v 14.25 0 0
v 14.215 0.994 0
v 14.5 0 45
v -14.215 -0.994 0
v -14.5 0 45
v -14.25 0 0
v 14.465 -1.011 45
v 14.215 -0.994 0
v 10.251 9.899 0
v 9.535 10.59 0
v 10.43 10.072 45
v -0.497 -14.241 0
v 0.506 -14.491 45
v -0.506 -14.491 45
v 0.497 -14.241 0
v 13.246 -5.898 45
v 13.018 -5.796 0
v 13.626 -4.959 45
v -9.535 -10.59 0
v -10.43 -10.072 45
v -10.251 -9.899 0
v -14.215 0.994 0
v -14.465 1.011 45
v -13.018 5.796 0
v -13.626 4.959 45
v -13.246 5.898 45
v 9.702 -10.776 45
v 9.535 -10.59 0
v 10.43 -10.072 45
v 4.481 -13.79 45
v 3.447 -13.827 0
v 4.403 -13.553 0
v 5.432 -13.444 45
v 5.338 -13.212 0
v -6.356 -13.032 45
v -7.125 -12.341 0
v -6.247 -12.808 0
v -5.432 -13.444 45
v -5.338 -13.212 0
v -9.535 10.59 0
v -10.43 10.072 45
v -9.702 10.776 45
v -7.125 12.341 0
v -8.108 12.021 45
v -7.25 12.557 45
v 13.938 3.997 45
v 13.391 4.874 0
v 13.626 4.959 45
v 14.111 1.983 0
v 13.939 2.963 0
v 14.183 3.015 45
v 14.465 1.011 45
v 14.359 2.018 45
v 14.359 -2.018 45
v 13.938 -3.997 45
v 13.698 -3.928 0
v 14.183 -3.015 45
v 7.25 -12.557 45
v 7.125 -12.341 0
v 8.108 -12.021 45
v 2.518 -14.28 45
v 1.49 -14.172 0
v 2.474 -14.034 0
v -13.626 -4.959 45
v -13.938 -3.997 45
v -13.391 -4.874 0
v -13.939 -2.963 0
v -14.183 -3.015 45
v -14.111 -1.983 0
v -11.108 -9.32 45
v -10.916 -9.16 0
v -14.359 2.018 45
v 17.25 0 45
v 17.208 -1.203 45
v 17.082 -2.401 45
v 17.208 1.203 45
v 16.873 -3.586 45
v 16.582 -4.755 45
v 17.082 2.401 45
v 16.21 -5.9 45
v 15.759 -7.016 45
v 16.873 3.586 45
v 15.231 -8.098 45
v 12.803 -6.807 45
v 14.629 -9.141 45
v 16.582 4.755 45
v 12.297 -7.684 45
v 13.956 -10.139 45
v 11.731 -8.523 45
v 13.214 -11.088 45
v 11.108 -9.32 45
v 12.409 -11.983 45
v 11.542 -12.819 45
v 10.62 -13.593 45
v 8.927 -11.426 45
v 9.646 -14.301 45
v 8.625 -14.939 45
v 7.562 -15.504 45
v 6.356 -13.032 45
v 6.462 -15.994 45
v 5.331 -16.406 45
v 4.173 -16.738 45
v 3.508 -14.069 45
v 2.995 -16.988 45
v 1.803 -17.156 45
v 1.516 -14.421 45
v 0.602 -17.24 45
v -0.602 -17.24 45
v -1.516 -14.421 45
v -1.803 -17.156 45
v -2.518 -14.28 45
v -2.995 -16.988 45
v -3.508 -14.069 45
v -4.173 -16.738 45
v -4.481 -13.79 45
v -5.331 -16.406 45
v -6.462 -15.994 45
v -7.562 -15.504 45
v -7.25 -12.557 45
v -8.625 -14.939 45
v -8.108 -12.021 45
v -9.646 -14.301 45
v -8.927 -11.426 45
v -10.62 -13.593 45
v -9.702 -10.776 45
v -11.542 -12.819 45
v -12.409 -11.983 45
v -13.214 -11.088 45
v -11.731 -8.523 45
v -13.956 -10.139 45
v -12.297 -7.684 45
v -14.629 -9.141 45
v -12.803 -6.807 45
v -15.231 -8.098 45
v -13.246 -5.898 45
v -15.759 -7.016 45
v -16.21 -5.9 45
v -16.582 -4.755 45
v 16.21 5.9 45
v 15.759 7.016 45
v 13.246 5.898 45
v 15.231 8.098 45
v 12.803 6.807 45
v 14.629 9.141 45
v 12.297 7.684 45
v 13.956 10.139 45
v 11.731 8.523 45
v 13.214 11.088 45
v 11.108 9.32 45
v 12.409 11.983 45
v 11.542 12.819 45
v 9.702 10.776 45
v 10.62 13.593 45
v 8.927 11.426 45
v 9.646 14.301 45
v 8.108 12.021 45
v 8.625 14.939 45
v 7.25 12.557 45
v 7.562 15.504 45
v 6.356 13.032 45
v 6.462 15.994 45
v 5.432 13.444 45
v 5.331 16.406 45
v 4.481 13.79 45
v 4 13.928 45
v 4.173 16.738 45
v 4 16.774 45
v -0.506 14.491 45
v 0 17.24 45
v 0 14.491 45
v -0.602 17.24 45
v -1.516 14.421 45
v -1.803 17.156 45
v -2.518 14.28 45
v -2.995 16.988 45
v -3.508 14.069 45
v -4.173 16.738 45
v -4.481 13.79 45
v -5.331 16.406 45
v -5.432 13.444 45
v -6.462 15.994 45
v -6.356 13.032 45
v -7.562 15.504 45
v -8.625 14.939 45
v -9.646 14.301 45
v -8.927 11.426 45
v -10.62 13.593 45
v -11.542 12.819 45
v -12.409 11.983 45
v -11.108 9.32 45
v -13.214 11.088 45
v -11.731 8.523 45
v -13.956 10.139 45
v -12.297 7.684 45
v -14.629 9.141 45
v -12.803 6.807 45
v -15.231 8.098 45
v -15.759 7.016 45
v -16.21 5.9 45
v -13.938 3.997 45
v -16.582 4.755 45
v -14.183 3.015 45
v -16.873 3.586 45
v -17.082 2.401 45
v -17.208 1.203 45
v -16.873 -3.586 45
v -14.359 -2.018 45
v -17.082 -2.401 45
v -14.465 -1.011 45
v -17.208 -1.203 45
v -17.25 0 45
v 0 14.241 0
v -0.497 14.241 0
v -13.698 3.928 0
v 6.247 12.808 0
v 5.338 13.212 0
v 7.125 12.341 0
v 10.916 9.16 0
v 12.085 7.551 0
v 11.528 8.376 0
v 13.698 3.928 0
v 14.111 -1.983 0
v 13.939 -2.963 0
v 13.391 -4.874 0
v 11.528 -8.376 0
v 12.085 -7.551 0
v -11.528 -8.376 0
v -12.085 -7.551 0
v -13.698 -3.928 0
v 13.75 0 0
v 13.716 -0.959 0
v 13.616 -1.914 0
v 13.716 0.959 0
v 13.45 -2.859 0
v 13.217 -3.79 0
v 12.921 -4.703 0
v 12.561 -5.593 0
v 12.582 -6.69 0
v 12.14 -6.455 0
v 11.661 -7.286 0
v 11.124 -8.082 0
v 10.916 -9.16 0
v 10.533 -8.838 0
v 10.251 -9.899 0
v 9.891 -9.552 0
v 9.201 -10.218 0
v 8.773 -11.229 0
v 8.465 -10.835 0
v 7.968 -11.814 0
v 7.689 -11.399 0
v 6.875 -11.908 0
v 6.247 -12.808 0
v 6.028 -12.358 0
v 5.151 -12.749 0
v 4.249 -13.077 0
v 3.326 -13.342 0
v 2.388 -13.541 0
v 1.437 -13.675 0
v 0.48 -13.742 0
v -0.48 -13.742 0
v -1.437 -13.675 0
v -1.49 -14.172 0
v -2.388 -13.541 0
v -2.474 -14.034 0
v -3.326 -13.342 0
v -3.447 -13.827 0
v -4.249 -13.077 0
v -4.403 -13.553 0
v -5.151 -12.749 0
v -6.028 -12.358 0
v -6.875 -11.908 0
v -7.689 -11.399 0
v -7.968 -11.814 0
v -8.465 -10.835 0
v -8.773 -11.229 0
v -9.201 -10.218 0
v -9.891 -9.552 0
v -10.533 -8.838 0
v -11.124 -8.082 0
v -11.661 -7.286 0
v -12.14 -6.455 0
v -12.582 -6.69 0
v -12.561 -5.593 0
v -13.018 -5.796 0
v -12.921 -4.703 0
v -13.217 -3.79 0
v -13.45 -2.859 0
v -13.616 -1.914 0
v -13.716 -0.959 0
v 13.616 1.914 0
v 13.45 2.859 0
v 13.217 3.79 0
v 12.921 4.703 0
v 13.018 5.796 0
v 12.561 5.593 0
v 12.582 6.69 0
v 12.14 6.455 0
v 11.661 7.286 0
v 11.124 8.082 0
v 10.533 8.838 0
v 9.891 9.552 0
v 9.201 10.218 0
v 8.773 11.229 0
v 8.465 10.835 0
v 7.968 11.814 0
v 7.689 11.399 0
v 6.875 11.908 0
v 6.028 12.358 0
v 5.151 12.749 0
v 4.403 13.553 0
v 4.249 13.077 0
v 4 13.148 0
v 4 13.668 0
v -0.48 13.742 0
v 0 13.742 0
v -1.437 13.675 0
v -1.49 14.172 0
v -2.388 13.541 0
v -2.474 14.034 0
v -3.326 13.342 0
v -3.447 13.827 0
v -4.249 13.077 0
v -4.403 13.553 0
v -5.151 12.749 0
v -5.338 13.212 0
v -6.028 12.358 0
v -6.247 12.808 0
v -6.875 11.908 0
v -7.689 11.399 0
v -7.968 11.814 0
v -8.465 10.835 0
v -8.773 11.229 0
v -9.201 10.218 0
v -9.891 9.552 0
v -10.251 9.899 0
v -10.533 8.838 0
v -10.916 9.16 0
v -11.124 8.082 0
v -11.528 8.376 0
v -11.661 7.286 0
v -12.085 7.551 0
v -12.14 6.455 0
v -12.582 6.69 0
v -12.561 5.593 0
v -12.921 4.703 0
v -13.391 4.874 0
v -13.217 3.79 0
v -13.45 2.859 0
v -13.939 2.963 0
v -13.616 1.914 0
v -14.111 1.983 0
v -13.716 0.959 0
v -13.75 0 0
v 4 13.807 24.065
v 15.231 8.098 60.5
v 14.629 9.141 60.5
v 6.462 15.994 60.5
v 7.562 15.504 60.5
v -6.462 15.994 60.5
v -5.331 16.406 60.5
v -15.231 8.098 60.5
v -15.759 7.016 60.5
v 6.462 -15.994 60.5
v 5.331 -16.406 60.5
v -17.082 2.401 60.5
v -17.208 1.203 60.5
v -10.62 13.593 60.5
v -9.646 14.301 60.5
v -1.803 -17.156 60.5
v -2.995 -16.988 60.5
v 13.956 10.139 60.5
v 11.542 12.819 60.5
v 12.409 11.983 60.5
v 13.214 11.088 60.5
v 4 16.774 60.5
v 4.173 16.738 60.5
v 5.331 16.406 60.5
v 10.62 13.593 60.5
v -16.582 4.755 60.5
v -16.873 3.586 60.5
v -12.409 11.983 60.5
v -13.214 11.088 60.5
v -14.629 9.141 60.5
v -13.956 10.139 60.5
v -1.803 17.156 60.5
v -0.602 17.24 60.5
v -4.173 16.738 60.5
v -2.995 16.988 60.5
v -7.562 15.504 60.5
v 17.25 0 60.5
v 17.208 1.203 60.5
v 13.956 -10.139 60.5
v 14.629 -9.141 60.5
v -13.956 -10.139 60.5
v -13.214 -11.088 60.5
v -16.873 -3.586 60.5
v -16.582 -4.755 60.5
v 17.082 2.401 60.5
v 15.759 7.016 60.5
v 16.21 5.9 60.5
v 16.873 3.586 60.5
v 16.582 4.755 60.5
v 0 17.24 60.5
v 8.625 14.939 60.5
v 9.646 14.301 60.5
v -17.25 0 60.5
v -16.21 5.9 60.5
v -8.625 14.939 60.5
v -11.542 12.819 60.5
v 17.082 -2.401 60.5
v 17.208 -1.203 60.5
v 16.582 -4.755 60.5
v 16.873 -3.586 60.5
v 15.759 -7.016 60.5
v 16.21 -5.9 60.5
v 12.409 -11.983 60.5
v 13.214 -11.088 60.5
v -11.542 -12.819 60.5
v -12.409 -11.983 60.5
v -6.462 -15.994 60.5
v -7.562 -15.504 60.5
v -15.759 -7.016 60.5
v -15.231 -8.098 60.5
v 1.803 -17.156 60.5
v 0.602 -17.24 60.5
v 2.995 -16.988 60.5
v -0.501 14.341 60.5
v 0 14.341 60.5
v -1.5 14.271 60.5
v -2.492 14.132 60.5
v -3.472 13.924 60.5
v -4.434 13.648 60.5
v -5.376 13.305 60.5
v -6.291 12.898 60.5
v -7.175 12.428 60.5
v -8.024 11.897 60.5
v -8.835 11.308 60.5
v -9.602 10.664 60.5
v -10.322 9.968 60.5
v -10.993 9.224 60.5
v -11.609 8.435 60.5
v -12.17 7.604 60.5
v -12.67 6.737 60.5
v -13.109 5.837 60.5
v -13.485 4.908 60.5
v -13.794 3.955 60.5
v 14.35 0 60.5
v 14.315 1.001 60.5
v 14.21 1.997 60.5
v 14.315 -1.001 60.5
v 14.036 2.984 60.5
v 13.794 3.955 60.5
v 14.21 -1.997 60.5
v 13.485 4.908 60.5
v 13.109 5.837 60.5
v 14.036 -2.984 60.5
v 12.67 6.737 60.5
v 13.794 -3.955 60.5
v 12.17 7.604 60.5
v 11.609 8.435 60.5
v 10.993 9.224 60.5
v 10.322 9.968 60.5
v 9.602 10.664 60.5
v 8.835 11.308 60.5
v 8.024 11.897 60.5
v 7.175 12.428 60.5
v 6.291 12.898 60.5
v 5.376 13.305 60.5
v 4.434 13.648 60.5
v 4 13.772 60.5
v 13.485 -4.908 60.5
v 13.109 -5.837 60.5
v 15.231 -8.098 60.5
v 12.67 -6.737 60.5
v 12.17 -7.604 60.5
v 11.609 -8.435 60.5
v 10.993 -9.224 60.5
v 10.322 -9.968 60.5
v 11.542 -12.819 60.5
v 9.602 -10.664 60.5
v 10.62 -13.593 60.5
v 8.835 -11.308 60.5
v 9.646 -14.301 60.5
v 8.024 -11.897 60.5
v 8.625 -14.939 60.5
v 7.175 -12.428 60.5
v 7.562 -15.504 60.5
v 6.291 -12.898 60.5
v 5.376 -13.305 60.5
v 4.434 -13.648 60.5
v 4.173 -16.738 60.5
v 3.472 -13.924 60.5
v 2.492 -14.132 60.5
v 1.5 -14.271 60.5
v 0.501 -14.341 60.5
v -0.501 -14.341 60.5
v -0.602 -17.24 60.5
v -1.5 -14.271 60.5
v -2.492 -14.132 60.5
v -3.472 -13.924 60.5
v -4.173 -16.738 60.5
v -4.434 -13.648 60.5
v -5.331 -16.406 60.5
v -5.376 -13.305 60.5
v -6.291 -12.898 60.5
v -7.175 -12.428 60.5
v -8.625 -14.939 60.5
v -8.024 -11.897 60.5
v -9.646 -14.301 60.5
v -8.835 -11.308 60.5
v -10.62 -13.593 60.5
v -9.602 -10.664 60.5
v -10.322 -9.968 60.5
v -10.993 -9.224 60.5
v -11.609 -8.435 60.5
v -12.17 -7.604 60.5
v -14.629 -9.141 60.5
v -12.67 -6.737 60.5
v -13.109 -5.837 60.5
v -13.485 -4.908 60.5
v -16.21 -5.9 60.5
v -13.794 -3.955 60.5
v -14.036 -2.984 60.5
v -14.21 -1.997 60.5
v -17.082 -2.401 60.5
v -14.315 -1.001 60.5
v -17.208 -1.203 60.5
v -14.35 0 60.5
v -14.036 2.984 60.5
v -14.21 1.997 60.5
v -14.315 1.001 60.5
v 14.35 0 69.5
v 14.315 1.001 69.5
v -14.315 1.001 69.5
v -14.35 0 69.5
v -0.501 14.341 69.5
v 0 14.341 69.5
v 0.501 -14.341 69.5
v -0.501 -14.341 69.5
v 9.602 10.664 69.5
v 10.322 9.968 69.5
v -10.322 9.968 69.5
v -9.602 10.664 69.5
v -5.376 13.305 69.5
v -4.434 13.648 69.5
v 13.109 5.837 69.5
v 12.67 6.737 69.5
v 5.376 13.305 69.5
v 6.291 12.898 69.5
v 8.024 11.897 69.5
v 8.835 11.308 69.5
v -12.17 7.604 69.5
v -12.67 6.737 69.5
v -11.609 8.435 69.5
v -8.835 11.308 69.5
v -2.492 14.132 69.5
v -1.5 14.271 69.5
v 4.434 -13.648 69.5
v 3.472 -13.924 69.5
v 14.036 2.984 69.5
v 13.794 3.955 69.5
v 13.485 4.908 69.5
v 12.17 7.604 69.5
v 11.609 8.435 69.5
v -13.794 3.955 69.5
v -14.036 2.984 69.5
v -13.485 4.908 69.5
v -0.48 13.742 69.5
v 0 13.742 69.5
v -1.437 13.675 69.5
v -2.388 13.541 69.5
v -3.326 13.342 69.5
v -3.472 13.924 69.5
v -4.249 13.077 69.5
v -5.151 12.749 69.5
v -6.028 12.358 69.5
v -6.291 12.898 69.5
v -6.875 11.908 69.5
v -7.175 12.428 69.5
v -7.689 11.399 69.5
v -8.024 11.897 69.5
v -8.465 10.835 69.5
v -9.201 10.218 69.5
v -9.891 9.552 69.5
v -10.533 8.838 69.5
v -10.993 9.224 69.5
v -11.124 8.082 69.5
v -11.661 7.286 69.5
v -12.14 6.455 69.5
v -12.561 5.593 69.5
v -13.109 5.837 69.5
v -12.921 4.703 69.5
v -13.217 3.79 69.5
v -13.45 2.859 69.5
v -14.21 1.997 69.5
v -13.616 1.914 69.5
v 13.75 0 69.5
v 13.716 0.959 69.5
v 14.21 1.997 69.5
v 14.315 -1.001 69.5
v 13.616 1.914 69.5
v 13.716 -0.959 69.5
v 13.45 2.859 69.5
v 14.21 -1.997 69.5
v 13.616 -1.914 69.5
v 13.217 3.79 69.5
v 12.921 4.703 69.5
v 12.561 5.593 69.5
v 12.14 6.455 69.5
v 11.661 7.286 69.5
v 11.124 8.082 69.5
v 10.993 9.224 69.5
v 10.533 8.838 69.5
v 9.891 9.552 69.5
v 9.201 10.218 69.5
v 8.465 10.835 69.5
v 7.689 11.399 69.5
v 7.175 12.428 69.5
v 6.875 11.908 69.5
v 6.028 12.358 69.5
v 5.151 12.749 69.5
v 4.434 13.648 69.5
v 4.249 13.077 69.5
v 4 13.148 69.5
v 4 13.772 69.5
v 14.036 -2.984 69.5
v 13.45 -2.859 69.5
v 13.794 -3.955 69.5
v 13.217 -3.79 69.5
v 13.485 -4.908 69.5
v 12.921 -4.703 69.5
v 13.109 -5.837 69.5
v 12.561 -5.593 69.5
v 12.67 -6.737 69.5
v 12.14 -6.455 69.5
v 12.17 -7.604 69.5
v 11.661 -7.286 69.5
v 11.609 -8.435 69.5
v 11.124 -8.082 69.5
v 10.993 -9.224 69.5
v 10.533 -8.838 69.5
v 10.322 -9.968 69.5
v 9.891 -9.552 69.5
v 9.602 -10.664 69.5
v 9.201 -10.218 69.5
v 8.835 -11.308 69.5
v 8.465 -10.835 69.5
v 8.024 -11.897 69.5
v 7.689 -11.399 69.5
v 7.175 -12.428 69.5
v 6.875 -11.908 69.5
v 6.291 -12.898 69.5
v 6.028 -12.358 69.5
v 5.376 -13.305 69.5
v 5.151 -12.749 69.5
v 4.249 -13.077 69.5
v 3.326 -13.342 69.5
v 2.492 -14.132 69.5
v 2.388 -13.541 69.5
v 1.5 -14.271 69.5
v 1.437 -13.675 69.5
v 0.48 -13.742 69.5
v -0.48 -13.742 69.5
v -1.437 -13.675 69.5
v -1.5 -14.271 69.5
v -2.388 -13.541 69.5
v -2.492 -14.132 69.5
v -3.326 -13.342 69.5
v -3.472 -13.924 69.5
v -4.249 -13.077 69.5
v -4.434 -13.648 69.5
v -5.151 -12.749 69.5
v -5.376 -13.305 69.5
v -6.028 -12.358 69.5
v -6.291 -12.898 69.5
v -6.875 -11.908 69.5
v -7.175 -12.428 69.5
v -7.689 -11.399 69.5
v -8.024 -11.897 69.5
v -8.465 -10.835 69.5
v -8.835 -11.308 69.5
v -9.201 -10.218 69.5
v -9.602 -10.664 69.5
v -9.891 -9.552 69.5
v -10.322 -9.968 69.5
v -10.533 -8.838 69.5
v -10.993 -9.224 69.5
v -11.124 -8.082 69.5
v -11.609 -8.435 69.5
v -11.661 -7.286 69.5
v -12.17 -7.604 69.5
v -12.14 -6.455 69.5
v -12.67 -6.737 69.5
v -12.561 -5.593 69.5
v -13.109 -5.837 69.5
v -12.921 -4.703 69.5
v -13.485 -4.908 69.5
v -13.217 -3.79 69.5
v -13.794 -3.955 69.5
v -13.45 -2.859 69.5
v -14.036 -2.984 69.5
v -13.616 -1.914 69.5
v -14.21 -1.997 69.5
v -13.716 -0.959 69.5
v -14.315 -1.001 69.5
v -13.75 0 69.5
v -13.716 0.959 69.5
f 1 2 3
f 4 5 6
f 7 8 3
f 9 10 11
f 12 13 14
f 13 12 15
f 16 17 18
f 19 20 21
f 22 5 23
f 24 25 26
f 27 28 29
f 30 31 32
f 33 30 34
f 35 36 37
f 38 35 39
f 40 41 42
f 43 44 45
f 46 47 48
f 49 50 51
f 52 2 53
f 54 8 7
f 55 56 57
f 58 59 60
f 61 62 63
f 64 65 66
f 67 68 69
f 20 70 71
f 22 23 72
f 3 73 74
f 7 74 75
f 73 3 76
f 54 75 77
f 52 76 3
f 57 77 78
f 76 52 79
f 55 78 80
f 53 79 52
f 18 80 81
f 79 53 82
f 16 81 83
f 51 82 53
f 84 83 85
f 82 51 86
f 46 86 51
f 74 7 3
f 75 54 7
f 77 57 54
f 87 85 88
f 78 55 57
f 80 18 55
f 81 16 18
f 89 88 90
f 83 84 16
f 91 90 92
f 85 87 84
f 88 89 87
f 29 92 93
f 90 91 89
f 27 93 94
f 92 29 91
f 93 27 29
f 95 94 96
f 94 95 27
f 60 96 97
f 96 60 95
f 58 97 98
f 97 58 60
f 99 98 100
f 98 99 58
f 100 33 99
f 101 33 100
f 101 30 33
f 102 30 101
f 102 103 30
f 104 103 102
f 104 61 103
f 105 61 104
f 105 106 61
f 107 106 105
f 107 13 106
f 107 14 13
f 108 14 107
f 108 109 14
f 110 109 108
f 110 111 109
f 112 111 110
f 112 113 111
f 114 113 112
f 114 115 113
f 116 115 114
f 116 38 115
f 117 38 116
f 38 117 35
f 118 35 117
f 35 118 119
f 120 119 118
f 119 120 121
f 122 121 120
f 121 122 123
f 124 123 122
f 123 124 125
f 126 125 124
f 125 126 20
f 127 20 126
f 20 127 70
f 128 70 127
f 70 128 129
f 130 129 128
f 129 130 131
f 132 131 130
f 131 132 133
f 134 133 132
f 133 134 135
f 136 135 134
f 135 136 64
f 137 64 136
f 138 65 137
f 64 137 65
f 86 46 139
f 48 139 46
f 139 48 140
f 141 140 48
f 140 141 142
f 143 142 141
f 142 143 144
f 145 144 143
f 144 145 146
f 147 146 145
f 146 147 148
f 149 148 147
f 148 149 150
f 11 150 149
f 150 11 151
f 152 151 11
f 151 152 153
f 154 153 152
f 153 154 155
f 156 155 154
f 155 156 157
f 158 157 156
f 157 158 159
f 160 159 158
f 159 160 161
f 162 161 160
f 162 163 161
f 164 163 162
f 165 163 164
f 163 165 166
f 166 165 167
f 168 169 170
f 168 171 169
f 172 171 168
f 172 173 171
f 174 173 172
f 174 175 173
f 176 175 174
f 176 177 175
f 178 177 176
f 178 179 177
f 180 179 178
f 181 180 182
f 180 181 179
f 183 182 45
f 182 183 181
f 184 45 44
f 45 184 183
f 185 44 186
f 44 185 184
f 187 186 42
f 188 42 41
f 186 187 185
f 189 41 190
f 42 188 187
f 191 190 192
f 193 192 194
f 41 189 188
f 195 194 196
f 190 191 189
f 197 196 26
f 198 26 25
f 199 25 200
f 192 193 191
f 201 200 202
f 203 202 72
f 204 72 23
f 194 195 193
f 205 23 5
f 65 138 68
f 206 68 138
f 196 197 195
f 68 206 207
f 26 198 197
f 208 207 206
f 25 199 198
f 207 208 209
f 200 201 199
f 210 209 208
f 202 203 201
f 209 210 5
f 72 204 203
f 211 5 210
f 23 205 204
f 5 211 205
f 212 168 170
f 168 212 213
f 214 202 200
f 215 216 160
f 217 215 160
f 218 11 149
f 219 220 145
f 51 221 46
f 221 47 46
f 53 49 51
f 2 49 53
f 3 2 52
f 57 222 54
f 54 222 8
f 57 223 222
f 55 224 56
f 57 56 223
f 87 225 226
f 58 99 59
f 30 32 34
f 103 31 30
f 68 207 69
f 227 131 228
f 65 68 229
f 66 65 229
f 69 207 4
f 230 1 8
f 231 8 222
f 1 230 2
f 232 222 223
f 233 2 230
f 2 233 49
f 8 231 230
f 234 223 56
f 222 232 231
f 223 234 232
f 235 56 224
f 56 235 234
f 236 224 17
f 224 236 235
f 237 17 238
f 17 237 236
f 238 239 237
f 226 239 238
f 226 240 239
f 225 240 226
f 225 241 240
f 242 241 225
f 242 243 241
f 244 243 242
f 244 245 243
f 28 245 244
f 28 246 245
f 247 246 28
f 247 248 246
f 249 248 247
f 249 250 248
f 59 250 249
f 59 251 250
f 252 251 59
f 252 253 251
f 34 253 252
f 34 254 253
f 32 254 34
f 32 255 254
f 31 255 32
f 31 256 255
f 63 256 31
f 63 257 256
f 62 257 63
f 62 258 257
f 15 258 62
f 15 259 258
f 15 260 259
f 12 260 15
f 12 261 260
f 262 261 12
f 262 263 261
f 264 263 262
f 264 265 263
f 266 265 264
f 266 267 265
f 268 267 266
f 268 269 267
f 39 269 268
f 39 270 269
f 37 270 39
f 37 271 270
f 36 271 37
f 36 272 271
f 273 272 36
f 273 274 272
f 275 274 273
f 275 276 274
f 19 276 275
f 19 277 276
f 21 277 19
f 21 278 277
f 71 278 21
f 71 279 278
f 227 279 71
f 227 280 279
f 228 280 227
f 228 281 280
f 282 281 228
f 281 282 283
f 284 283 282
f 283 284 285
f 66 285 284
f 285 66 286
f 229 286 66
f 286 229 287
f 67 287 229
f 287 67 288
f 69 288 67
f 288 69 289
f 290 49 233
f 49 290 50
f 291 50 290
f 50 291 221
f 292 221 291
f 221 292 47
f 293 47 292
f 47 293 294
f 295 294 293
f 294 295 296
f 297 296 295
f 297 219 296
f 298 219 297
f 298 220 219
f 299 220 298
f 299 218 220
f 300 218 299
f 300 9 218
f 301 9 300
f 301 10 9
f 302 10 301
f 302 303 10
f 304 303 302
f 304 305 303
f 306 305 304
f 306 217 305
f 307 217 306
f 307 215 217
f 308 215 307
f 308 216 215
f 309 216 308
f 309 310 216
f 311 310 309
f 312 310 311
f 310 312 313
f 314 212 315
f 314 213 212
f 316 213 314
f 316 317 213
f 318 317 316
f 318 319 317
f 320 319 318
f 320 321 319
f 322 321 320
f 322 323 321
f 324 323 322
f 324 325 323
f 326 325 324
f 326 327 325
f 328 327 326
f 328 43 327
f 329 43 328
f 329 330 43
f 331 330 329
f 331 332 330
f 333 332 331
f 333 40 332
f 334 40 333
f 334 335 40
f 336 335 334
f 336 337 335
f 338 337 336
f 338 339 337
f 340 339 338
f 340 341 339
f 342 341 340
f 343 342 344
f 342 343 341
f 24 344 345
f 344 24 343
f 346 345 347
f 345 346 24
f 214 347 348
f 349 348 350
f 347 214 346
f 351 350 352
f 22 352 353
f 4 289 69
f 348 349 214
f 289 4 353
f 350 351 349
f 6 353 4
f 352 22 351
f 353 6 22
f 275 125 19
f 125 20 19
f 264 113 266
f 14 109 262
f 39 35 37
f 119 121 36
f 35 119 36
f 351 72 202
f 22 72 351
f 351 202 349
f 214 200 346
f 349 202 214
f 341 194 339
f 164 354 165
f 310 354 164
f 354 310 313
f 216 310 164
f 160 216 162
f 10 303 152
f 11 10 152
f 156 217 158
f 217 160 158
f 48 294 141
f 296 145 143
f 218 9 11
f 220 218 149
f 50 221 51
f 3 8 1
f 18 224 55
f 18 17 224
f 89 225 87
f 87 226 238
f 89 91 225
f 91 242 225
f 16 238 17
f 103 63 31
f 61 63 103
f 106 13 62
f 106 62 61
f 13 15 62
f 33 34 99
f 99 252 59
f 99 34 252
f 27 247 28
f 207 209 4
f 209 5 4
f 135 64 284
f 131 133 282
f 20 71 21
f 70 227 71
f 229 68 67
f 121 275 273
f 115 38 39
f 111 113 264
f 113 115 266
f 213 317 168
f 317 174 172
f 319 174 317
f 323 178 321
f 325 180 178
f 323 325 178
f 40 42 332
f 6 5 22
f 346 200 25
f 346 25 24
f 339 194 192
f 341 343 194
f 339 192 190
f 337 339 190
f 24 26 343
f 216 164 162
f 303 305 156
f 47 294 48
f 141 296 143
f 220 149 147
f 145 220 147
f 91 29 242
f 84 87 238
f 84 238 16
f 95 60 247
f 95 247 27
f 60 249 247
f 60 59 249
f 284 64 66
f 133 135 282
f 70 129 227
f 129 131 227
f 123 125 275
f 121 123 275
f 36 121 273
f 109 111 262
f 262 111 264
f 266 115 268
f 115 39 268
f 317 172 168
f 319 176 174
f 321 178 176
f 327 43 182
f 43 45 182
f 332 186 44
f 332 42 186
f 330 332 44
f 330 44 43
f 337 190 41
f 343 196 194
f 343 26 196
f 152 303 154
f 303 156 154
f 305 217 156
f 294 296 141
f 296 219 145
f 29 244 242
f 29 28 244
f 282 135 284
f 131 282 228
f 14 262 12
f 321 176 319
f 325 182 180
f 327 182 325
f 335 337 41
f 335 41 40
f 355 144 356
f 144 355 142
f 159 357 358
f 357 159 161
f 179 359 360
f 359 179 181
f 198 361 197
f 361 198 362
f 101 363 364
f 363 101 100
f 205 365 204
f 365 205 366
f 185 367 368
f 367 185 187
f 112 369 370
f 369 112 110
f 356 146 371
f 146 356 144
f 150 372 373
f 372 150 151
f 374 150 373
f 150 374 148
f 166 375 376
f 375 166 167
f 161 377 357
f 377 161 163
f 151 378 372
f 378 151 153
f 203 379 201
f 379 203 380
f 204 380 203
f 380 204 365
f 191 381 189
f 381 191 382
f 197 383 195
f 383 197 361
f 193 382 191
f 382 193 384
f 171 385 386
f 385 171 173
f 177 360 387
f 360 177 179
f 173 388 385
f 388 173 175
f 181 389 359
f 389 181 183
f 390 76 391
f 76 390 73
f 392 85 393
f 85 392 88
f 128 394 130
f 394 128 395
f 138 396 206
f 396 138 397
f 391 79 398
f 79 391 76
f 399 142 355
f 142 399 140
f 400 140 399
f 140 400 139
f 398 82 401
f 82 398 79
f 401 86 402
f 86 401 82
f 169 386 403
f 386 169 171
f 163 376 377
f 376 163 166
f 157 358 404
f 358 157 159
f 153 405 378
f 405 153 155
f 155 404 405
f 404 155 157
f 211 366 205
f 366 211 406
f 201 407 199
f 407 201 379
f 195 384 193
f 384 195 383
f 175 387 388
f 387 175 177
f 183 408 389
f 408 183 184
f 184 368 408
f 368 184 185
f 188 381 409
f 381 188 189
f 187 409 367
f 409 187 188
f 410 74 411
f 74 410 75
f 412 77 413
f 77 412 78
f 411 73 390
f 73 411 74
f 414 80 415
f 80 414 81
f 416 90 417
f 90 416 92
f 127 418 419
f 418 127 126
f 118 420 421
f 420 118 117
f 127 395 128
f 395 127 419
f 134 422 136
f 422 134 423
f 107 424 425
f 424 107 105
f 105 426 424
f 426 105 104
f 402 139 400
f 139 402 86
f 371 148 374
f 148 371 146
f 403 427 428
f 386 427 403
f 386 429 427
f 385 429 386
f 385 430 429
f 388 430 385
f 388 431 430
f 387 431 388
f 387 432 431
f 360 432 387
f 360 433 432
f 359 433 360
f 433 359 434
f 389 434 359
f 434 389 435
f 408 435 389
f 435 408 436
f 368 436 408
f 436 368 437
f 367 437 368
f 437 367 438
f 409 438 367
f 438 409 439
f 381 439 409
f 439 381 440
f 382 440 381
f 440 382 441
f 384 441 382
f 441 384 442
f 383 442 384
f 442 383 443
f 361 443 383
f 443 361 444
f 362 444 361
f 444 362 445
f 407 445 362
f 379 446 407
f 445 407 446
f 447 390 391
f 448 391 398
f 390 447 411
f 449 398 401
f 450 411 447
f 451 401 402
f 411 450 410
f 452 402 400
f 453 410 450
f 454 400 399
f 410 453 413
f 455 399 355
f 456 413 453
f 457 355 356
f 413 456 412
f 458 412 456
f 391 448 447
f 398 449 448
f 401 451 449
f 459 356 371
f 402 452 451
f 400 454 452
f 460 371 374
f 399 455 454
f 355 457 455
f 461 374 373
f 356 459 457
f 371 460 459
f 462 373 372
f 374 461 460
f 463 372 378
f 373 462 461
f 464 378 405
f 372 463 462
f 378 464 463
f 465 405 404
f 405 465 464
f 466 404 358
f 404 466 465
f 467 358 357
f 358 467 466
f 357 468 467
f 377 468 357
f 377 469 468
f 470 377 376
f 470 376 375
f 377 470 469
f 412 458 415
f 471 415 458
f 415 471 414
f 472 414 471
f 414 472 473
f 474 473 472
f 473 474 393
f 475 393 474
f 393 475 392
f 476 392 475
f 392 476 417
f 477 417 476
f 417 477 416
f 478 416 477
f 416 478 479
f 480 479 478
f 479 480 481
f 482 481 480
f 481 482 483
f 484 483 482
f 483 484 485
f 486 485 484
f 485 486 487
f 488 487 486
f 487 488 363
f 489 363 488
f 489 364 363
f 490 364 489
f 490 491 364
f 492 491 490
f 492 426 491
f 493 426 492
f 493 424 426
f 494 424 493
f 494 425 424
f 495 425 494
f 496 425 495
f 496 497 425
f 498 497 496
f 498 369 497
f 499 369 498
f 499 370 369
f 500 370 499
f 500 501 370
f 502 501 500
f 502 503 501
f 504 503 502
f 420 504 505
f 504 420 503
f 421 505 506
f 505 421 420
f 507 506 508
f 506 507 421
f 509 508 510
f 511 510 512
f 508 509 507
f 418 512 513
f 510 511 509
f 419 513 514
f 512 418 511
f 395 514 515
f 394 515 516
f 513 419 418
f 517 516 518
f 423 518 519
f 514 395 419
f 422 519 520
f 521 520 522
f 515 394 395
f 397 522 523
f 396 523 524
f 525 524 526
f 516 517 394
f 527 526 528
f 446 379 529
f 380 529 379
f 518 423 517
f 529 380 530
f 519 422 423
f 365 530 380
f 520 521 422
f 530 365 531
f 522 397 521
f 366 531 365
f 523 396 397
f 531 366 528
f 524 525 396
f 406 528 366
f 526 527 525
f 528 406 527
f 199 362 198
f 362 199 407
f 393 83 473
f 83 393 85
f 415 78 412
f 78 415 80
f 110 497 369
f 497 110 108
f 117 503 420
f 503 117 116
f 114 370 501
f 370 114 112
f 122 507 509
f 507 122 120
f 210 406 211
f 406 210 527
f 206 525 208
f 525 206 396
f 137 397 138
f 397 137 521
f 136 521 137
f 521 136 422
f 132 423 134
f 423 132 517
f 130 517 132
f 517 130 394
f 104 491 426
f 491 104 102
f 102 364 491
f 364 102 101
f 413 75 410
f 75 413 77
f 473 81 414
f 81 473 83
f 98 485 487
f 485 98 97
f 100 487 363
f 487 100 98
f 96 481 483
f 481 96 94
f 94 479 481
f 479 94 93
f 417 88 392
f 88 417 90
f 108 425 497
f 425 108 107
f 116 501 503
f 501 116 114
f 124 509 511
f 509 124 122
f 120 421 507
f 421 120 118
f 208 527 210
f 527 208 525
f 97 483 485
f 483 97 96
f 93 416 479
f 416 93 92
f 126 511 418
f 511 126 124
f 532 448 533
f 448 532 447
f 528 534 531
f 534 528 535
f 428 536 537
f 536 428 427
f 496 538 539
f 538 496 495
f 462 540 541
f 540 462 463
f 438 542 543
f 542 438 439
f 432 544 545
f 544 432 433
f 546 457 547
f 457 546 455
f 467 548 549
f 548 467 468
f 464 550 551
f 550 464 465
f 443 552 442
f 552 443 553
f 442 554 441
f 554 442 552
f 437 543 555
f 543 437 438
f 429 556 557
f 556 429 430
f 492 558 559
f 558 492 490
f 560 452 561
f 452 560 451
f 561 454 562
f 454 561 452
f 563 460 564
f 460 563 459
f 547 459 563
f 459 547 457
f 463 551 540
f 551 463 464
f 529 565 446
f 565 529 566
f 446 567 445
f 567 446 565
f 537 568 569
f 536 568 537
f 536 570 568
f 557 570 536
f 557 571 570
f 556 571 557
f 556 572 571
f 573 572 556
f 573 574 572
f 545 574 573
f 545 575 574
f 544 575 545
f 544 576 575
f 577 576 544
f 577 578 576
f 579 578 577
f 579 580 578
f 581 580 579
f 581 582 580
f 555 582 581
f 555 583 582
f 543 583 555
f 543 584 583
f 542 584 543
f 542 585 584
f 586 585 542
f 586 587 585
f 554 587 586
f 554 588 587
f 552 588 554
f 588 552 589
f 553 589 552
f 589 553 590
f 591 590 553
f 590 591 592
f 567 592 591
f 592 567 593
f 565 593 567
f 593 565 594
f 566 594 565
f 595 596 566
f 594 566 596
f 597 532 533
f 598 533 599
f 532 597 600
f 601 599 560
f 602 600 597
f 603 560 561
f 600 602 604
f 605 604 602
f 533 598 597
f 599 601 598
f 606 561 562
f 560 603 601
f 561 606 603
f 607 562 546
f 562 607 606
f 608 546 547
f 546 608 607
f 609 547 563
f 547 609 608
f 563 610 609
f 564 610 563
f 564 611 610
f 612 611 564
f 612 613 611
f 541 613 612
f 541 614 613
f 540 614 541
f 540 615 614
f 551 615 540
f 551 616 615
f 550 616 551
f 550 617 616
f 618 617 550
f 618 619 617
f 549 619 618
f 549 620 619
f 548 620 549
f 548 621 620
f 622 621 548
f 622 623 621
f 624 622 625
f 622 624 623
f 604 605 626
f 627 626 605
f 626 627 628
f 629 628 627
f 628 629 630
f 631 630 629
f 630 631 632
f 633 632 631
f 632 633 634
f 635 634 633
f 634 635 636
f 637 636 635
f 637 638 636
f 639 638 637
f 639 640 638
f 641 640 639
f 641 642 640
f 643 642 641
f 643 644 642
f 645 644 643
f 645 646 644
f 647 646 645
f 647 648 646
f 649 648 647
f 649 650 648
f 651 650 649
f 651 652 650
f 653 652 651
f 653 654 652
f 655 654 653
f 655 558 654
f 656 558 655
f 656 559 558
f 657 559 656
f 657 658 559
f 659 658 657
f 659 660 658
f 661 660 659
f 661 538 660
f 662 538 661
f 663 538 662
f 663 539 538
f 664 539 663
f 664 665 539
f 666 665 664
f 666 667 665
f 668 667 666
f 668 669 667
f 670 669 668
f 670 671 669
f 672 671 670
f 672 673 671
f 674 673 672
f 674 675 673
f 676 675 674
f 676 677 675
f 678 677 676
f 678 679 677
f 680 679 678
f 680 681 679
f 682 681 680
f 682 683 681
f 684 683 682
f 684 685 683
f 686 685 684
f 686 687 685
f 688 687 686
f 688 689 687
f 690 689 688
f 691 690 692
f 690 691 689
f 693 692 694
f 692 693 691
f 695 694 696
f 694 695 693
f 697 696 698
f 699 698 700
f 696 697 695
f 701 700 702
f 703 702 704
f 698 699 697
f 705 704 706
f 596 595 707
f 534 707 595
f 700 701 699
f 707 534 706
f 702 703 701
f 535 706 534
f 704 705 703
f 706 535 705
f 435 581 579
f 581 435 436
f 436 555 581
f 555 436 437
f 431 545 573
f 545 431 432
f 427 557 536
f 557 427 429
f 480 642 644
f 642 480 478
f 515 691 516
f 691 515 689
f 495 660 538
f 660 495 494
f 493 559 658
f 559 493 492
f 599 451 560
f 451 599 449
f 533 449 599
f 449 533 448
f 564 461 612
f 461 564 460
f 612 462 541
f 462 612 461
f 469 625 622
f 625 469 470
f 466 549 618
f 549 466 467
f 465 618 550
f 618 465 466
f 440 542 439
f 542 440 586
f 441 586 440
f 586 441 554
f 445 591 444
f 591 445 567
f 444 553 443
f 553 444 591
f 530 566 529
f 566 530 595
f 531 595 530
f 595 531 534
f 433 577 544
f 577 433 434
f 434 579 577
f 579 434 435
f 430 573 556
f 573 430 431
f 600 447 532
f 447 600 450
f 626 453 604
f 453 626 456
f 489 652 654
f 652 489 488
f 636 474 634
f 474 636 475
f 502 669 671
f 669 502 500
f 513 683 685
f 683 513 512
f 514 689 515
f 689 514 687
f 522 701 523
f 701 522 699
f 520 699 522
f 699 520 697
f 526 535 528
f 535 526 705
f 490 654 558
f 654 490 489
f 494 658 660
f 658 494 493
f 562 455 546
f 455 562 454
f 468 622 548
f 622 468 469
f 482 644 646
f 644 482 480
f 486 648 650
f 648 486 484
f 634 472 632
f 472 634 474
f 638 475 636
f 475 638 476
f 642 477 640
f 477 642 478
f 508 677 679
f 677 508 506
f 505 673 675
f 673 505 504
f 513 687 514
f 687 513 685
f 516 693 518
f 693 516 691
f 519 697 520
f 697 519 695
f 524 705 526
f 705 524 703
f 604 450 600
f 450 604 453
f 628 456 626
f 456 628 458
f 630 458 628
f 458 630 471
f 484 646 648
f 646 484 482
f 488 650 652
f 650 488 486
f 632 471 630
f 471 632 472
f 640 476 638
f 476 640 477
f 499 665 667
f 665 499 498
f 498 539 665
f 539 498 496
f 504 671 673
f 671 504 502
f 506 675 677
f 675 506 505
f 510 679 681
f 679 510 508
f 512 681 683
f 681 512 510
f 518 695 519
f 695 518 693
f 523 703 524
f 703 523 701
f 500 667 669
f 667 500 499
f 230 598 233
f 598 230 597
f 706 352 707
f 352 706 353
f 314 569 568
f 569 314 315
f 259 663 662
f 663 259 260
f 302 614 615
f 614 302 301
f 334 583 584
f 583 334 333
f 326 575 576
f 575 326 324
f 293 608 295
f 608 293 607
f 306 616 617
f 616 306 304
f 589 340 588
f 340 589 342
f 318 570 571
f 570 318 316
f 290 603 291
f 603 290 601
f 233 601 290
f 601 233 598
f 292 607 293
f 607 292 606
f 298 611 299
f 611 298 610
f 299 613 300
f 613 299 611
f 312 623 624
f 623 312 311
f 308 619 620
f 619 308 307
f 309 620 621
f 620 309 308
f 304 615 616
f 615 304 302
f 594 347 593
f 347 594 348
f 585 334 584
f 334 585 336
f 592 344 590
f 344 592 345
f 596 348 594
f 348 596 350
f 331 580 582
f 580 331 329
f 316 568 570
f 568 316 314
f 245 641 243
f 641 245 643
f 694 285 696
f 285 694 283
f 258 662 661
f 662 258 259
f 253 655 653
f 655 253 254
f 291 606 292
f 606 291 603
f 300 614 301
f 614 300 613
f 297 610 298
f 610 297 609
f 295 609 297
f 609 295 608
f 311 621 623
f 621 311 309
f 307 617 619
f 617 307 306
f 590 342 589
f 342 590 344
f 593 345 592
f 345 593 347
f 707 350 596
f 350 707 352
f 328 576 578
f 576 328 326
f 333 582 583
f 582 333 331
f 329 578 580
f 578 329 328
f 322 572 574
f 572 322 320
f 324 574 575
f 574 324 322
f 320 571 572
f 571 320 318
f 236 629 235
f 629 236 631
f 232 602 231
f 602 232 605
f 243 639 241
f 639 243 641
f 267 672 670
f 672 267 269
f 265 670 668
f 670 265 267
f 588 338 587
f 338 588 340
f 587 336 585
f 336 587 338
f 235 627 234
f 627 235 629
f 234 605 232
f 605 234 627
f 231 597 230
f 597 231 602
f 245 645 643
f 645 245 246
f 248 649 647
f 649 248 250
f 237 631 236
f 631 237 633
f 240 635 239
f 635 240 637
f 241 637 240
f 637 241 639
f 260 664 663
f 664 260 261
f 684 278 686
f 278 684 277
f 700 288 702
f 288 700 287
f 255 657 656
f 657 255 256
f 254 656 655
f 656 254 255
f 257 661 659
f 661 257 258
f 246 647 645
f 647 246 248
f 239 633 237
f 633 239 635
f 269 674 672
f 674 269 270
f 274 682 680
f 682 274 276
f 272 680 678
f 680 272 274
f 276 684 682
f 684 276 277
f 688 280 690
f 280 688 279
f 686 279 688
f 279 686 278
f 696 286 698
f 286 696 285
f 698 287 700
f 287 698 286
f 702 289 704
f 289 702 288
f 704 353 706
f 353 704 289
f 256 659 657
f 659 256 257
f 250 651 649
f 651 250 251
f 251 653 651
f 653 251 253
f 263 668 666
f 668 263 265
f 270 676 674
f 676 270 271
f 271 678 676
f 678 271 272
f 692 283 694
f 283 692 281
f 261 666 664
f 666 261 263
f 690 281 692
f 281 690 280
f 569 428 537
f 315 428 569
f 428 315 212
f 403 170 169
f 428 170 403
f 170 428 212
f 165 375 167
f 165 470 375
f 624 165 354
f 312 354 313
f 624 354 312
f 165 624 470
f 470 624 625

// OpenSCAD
// Cylindrical washer for CityBirds' Pigeon Handle
// photos: https://photos.app.goo.gl/bxdxEN4KaswUnZ7s2

$fn=90;

washer();

d1=27.5;
d2start=28.5;
d2=29;
d3=34.5;
d4=28.7;


h2=45;
h3=15.5;
h4=9;
h=h2+h3+h4;

e=0.001;
e2=0.002;

module washer() {
    difference() {
        washerOutside();
        translate([0,0,-e]) 
            cylinder(d=d1, h=h+e2);
        cube([4,h,h]);
    }
}

module washerOutside() {
    cylinder(d1=d2start, d2=d2, h=h2);
    translate([0,0,h2]) cylinder(d=d3, h=h3);
    translate([0,0,h2+h3]) cylinder(d=d4, h=h4);
}
